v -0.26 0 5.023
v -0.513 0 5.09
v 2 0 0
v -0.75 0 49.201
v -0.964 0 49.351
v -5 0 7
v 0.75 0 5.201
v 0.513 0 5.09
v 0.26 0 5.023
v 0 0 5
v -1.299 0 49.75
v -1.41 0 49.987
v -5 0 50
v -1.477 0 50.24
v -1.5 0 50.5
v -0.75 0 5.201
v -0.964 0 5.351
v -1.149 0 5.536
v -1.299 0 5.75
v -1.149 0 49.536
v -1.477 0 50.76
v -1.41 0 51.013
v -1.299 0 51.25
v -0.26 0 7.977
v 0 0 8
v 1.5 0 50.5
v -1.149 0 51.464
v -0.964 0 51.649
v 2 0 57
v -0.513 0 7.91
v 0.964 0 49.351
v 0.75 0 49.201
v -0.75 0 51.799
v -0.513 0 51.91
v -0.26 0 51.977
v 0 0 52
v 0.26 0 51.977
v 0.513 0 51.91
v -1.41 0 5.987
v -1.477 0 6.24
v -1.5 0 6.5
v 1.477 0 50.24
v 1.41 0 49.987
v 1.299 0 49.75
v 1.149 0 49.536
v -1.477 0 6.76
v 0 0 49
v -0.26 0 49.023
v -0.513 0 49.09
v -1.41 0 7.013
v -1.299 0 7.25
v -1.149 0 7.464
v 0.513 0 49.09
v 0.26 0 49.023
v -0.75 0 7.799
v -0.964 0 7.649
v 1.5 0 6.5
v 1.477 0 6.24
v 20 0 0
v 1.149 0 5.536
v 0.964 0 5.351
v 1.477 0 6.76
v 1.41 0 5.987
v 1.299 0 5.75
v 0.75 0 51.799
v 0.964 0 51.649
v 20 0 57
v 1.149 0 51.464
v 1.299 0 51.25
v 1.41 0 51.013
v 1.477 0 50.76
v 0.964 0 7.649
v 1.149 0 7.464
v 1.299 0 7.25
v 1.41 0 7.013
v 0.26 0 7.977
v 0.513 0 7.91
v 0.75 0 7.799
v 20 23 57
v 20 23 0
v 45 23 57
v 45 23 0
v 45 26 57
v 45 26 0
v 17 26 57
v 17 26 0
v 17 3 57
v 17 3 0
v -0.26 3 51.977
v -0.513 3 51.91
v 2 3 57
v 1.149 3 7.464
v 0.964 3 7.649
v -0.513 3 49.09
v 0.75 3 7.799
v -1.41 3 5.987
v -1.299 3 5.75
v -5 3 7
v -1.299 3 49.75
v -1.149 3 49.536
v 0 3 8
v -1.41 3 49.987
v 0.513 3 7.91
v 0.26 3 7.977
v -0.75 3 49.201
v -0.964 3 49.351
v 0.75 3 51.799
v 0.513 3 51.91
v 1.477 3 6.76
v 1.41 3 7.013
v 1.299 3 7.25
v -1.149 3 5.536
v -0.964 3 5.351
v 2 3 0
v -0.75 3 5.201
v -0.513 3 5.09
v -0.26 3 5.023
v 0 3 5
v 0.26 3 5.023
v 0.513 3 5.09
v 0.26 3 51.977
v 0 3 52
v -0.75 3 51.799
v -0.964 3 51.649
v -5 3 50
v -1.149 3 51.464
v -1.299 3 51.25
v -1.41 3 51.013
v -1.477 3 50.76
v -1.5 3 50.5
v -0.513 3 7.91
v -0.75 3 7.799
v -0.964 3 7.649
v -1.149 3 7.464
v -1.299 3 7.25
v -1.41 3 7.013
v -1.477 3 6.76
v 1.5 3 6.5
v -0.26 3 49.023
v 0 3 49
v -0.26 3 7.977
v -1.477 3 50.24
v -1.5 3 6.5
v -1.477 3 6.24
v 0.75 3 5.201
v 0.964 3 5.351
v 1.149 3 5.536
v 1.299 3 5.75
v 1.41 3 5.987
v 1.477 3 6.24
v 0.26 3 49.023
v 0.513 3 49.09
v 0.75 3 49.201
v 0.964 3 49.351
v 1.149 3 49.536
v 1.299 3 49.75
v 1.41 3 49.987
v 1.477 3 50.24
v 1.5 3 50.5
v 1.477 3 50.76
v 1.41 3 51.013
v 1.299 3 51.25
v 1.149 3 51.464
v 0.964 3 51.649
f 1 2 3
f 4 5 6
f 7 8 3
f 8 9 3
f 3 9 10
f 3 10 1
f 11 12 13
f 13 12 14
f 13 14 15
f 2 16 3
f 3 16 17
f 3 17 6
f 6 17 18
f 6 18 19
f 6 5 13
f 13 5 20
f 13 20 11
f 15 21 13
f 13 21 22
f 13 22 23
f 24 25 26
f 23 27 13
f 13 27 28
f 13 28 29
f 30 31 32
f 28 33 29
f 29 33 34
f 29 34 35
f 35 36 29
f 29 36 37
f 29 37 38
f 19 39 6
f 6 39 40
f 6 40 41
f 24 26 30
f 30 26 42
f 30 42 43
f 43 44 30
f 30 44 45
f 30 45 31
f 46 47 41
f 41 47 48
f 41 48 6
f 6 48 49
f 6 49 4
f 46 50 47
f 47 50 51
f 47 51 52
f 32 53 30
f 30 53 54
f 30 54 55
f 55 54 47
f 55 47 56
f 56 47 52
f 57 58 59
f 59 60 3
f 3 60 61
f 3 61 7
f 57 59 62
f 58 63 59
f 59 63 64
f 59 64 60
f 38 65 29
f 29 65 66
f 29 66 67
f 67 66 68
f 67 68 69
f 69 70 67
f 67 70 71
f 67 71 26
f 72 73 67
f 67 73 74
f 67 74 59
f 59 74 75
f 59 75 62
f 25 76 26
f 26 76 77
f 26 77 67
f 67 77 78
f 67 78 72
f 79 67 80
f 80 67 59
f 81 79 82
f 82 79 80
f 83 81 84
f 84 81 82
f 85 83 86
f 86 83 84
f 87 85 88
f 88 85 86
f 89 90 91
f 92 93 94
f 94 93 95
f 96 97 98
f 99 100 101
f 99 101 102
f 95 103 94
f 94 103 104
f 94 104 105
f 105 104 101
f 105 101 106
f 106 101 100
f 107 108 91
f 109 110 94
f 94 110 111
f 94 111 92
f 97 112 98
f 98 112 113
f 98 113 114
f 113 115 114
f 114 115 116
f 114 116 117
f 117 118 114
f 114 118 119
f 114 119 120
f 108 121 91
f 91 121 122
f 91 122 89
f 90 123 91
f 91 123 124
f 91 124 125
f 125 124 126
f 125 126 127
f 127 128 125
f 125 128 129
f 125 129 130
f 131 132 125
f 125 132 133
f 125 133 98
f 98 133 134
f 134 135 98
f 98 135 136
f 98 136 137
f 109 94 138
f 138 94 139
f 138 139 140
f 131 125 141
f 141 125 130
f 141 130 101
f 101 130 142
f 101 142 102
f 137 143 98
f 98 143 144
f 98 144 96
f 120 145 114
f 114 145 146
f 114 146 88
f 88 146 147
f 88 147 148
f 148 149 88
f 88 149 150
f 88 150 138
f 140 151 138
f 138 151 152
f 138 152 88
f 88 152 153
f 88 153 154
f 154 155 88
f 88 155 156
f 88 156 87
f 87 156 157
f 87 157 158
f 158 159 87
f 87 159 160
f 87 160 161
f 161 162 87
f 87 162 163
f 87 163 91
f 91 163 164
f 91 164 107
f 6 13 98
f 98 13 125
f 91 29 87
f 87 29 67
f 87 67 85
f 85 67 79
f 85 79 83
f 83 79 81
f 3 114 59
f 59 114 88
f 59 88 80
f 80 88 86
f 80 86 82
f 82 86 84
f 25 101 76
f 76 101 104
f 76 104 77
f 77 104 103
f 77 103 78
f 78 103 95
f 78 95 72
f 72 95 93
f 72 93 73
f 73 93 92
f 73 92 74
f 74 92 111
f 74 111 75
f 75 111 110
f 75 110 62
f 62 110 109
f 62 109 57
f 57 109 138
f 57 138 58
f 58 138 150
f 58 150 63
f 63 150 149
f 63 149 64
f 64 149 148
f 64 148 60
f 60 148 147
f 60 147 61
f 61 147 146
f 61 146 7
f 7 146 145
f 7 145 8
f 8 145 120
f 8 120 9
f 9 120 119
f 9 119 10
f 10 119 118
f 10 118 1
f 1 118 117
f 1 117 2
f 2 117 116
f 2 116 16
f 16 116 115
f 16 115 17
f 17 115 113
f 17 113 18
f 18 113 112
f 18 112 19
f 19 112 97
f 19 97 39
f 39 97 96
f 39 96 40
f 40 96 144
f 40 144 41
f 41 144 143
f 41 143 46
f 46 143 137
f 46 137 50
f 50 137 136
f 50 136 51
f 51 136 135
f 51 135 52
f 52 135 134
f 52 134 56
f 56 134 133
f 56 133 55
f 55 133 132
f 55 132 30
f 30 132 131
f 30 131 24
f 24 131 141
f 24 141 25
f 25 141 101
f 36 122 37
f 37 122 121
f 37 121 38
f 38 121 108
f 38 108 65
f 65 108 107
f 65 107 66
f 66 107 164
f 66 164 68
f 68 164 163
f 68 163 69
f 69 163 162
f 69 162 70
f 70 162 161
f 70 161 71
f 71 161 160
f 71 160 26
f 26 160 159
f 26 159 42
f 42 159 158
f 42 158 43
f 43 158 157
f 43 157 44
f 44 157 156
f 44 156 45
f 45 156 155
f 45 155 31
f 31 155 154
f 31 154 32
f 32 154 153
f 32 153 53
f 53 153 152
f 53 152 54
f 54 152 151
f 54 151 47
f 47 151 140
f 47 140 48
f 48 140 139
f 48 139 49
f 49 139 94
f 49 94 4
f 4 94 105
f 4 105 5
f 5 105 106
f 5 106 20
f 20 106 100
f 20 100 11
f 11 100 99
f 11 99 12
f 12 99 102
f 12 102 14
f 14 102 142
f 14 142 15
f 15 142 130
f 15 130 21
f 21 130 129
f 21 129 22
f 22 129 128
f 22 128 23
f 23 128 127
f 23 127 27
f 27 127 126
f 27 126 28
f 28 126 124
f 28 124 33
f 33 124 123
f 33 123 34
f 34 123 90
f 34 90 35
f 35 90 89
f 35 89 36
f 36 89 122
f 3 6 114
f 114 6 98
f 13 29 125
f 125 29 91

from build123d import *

# Parameters (mm, degrees)
ESTRUSIONE_ESTRUSIONE1_DEPTH = 57
SCHIZZO2_R                   = 1.5
TAGLIO_ESTRUSIONE1_DEPTH     = 57
SMUSSO1_SIZE                 = 7


with BuildPart() as part:
    # Schizzo1 → Estrusione-Estrusione1 (new body)
    with BuildSketch(Plane.XY):
        Polygon((0, 0), (20, 0), (20, 23), (45, 23), (45, 26), (17, 26), (17, 3), (-5, 3), (-5, 0), align=None)
    extrude(amount=ESTRUSIONE_ESTRUSIONE1_DEPTH)

    # Schizzo2 → Taglio-Estrusione1 (cut)
    with BuildSketch(Plane(origin=(0, 3, 0), x_dir=(1, 0, 0), z_dir=(0, 1, 0))):
        with Locations(Location((0, -50.5, 0), (0, 0, 270))):
            Circle(SCHIZZO2_R)
        with Locations(Location((0, -6.5, 0), (0, 0, 270))):
            Circle(SCHIZZO2_R)
    extrude(amount=-TAGLIO_ESTRUSIONE1_DEPTH, mode=Mode.SUBTRACT)

    # Smusso1
    smusso1_edges = [part.edges().sort_by_distance(p)[0] for p in [
        (-5, 1.5, 57),
        (-5, 1.5, 0),
    ]]
    chamfer(smusso1_edges, length=SMUSSO1_SIZE)


solid = part.part
